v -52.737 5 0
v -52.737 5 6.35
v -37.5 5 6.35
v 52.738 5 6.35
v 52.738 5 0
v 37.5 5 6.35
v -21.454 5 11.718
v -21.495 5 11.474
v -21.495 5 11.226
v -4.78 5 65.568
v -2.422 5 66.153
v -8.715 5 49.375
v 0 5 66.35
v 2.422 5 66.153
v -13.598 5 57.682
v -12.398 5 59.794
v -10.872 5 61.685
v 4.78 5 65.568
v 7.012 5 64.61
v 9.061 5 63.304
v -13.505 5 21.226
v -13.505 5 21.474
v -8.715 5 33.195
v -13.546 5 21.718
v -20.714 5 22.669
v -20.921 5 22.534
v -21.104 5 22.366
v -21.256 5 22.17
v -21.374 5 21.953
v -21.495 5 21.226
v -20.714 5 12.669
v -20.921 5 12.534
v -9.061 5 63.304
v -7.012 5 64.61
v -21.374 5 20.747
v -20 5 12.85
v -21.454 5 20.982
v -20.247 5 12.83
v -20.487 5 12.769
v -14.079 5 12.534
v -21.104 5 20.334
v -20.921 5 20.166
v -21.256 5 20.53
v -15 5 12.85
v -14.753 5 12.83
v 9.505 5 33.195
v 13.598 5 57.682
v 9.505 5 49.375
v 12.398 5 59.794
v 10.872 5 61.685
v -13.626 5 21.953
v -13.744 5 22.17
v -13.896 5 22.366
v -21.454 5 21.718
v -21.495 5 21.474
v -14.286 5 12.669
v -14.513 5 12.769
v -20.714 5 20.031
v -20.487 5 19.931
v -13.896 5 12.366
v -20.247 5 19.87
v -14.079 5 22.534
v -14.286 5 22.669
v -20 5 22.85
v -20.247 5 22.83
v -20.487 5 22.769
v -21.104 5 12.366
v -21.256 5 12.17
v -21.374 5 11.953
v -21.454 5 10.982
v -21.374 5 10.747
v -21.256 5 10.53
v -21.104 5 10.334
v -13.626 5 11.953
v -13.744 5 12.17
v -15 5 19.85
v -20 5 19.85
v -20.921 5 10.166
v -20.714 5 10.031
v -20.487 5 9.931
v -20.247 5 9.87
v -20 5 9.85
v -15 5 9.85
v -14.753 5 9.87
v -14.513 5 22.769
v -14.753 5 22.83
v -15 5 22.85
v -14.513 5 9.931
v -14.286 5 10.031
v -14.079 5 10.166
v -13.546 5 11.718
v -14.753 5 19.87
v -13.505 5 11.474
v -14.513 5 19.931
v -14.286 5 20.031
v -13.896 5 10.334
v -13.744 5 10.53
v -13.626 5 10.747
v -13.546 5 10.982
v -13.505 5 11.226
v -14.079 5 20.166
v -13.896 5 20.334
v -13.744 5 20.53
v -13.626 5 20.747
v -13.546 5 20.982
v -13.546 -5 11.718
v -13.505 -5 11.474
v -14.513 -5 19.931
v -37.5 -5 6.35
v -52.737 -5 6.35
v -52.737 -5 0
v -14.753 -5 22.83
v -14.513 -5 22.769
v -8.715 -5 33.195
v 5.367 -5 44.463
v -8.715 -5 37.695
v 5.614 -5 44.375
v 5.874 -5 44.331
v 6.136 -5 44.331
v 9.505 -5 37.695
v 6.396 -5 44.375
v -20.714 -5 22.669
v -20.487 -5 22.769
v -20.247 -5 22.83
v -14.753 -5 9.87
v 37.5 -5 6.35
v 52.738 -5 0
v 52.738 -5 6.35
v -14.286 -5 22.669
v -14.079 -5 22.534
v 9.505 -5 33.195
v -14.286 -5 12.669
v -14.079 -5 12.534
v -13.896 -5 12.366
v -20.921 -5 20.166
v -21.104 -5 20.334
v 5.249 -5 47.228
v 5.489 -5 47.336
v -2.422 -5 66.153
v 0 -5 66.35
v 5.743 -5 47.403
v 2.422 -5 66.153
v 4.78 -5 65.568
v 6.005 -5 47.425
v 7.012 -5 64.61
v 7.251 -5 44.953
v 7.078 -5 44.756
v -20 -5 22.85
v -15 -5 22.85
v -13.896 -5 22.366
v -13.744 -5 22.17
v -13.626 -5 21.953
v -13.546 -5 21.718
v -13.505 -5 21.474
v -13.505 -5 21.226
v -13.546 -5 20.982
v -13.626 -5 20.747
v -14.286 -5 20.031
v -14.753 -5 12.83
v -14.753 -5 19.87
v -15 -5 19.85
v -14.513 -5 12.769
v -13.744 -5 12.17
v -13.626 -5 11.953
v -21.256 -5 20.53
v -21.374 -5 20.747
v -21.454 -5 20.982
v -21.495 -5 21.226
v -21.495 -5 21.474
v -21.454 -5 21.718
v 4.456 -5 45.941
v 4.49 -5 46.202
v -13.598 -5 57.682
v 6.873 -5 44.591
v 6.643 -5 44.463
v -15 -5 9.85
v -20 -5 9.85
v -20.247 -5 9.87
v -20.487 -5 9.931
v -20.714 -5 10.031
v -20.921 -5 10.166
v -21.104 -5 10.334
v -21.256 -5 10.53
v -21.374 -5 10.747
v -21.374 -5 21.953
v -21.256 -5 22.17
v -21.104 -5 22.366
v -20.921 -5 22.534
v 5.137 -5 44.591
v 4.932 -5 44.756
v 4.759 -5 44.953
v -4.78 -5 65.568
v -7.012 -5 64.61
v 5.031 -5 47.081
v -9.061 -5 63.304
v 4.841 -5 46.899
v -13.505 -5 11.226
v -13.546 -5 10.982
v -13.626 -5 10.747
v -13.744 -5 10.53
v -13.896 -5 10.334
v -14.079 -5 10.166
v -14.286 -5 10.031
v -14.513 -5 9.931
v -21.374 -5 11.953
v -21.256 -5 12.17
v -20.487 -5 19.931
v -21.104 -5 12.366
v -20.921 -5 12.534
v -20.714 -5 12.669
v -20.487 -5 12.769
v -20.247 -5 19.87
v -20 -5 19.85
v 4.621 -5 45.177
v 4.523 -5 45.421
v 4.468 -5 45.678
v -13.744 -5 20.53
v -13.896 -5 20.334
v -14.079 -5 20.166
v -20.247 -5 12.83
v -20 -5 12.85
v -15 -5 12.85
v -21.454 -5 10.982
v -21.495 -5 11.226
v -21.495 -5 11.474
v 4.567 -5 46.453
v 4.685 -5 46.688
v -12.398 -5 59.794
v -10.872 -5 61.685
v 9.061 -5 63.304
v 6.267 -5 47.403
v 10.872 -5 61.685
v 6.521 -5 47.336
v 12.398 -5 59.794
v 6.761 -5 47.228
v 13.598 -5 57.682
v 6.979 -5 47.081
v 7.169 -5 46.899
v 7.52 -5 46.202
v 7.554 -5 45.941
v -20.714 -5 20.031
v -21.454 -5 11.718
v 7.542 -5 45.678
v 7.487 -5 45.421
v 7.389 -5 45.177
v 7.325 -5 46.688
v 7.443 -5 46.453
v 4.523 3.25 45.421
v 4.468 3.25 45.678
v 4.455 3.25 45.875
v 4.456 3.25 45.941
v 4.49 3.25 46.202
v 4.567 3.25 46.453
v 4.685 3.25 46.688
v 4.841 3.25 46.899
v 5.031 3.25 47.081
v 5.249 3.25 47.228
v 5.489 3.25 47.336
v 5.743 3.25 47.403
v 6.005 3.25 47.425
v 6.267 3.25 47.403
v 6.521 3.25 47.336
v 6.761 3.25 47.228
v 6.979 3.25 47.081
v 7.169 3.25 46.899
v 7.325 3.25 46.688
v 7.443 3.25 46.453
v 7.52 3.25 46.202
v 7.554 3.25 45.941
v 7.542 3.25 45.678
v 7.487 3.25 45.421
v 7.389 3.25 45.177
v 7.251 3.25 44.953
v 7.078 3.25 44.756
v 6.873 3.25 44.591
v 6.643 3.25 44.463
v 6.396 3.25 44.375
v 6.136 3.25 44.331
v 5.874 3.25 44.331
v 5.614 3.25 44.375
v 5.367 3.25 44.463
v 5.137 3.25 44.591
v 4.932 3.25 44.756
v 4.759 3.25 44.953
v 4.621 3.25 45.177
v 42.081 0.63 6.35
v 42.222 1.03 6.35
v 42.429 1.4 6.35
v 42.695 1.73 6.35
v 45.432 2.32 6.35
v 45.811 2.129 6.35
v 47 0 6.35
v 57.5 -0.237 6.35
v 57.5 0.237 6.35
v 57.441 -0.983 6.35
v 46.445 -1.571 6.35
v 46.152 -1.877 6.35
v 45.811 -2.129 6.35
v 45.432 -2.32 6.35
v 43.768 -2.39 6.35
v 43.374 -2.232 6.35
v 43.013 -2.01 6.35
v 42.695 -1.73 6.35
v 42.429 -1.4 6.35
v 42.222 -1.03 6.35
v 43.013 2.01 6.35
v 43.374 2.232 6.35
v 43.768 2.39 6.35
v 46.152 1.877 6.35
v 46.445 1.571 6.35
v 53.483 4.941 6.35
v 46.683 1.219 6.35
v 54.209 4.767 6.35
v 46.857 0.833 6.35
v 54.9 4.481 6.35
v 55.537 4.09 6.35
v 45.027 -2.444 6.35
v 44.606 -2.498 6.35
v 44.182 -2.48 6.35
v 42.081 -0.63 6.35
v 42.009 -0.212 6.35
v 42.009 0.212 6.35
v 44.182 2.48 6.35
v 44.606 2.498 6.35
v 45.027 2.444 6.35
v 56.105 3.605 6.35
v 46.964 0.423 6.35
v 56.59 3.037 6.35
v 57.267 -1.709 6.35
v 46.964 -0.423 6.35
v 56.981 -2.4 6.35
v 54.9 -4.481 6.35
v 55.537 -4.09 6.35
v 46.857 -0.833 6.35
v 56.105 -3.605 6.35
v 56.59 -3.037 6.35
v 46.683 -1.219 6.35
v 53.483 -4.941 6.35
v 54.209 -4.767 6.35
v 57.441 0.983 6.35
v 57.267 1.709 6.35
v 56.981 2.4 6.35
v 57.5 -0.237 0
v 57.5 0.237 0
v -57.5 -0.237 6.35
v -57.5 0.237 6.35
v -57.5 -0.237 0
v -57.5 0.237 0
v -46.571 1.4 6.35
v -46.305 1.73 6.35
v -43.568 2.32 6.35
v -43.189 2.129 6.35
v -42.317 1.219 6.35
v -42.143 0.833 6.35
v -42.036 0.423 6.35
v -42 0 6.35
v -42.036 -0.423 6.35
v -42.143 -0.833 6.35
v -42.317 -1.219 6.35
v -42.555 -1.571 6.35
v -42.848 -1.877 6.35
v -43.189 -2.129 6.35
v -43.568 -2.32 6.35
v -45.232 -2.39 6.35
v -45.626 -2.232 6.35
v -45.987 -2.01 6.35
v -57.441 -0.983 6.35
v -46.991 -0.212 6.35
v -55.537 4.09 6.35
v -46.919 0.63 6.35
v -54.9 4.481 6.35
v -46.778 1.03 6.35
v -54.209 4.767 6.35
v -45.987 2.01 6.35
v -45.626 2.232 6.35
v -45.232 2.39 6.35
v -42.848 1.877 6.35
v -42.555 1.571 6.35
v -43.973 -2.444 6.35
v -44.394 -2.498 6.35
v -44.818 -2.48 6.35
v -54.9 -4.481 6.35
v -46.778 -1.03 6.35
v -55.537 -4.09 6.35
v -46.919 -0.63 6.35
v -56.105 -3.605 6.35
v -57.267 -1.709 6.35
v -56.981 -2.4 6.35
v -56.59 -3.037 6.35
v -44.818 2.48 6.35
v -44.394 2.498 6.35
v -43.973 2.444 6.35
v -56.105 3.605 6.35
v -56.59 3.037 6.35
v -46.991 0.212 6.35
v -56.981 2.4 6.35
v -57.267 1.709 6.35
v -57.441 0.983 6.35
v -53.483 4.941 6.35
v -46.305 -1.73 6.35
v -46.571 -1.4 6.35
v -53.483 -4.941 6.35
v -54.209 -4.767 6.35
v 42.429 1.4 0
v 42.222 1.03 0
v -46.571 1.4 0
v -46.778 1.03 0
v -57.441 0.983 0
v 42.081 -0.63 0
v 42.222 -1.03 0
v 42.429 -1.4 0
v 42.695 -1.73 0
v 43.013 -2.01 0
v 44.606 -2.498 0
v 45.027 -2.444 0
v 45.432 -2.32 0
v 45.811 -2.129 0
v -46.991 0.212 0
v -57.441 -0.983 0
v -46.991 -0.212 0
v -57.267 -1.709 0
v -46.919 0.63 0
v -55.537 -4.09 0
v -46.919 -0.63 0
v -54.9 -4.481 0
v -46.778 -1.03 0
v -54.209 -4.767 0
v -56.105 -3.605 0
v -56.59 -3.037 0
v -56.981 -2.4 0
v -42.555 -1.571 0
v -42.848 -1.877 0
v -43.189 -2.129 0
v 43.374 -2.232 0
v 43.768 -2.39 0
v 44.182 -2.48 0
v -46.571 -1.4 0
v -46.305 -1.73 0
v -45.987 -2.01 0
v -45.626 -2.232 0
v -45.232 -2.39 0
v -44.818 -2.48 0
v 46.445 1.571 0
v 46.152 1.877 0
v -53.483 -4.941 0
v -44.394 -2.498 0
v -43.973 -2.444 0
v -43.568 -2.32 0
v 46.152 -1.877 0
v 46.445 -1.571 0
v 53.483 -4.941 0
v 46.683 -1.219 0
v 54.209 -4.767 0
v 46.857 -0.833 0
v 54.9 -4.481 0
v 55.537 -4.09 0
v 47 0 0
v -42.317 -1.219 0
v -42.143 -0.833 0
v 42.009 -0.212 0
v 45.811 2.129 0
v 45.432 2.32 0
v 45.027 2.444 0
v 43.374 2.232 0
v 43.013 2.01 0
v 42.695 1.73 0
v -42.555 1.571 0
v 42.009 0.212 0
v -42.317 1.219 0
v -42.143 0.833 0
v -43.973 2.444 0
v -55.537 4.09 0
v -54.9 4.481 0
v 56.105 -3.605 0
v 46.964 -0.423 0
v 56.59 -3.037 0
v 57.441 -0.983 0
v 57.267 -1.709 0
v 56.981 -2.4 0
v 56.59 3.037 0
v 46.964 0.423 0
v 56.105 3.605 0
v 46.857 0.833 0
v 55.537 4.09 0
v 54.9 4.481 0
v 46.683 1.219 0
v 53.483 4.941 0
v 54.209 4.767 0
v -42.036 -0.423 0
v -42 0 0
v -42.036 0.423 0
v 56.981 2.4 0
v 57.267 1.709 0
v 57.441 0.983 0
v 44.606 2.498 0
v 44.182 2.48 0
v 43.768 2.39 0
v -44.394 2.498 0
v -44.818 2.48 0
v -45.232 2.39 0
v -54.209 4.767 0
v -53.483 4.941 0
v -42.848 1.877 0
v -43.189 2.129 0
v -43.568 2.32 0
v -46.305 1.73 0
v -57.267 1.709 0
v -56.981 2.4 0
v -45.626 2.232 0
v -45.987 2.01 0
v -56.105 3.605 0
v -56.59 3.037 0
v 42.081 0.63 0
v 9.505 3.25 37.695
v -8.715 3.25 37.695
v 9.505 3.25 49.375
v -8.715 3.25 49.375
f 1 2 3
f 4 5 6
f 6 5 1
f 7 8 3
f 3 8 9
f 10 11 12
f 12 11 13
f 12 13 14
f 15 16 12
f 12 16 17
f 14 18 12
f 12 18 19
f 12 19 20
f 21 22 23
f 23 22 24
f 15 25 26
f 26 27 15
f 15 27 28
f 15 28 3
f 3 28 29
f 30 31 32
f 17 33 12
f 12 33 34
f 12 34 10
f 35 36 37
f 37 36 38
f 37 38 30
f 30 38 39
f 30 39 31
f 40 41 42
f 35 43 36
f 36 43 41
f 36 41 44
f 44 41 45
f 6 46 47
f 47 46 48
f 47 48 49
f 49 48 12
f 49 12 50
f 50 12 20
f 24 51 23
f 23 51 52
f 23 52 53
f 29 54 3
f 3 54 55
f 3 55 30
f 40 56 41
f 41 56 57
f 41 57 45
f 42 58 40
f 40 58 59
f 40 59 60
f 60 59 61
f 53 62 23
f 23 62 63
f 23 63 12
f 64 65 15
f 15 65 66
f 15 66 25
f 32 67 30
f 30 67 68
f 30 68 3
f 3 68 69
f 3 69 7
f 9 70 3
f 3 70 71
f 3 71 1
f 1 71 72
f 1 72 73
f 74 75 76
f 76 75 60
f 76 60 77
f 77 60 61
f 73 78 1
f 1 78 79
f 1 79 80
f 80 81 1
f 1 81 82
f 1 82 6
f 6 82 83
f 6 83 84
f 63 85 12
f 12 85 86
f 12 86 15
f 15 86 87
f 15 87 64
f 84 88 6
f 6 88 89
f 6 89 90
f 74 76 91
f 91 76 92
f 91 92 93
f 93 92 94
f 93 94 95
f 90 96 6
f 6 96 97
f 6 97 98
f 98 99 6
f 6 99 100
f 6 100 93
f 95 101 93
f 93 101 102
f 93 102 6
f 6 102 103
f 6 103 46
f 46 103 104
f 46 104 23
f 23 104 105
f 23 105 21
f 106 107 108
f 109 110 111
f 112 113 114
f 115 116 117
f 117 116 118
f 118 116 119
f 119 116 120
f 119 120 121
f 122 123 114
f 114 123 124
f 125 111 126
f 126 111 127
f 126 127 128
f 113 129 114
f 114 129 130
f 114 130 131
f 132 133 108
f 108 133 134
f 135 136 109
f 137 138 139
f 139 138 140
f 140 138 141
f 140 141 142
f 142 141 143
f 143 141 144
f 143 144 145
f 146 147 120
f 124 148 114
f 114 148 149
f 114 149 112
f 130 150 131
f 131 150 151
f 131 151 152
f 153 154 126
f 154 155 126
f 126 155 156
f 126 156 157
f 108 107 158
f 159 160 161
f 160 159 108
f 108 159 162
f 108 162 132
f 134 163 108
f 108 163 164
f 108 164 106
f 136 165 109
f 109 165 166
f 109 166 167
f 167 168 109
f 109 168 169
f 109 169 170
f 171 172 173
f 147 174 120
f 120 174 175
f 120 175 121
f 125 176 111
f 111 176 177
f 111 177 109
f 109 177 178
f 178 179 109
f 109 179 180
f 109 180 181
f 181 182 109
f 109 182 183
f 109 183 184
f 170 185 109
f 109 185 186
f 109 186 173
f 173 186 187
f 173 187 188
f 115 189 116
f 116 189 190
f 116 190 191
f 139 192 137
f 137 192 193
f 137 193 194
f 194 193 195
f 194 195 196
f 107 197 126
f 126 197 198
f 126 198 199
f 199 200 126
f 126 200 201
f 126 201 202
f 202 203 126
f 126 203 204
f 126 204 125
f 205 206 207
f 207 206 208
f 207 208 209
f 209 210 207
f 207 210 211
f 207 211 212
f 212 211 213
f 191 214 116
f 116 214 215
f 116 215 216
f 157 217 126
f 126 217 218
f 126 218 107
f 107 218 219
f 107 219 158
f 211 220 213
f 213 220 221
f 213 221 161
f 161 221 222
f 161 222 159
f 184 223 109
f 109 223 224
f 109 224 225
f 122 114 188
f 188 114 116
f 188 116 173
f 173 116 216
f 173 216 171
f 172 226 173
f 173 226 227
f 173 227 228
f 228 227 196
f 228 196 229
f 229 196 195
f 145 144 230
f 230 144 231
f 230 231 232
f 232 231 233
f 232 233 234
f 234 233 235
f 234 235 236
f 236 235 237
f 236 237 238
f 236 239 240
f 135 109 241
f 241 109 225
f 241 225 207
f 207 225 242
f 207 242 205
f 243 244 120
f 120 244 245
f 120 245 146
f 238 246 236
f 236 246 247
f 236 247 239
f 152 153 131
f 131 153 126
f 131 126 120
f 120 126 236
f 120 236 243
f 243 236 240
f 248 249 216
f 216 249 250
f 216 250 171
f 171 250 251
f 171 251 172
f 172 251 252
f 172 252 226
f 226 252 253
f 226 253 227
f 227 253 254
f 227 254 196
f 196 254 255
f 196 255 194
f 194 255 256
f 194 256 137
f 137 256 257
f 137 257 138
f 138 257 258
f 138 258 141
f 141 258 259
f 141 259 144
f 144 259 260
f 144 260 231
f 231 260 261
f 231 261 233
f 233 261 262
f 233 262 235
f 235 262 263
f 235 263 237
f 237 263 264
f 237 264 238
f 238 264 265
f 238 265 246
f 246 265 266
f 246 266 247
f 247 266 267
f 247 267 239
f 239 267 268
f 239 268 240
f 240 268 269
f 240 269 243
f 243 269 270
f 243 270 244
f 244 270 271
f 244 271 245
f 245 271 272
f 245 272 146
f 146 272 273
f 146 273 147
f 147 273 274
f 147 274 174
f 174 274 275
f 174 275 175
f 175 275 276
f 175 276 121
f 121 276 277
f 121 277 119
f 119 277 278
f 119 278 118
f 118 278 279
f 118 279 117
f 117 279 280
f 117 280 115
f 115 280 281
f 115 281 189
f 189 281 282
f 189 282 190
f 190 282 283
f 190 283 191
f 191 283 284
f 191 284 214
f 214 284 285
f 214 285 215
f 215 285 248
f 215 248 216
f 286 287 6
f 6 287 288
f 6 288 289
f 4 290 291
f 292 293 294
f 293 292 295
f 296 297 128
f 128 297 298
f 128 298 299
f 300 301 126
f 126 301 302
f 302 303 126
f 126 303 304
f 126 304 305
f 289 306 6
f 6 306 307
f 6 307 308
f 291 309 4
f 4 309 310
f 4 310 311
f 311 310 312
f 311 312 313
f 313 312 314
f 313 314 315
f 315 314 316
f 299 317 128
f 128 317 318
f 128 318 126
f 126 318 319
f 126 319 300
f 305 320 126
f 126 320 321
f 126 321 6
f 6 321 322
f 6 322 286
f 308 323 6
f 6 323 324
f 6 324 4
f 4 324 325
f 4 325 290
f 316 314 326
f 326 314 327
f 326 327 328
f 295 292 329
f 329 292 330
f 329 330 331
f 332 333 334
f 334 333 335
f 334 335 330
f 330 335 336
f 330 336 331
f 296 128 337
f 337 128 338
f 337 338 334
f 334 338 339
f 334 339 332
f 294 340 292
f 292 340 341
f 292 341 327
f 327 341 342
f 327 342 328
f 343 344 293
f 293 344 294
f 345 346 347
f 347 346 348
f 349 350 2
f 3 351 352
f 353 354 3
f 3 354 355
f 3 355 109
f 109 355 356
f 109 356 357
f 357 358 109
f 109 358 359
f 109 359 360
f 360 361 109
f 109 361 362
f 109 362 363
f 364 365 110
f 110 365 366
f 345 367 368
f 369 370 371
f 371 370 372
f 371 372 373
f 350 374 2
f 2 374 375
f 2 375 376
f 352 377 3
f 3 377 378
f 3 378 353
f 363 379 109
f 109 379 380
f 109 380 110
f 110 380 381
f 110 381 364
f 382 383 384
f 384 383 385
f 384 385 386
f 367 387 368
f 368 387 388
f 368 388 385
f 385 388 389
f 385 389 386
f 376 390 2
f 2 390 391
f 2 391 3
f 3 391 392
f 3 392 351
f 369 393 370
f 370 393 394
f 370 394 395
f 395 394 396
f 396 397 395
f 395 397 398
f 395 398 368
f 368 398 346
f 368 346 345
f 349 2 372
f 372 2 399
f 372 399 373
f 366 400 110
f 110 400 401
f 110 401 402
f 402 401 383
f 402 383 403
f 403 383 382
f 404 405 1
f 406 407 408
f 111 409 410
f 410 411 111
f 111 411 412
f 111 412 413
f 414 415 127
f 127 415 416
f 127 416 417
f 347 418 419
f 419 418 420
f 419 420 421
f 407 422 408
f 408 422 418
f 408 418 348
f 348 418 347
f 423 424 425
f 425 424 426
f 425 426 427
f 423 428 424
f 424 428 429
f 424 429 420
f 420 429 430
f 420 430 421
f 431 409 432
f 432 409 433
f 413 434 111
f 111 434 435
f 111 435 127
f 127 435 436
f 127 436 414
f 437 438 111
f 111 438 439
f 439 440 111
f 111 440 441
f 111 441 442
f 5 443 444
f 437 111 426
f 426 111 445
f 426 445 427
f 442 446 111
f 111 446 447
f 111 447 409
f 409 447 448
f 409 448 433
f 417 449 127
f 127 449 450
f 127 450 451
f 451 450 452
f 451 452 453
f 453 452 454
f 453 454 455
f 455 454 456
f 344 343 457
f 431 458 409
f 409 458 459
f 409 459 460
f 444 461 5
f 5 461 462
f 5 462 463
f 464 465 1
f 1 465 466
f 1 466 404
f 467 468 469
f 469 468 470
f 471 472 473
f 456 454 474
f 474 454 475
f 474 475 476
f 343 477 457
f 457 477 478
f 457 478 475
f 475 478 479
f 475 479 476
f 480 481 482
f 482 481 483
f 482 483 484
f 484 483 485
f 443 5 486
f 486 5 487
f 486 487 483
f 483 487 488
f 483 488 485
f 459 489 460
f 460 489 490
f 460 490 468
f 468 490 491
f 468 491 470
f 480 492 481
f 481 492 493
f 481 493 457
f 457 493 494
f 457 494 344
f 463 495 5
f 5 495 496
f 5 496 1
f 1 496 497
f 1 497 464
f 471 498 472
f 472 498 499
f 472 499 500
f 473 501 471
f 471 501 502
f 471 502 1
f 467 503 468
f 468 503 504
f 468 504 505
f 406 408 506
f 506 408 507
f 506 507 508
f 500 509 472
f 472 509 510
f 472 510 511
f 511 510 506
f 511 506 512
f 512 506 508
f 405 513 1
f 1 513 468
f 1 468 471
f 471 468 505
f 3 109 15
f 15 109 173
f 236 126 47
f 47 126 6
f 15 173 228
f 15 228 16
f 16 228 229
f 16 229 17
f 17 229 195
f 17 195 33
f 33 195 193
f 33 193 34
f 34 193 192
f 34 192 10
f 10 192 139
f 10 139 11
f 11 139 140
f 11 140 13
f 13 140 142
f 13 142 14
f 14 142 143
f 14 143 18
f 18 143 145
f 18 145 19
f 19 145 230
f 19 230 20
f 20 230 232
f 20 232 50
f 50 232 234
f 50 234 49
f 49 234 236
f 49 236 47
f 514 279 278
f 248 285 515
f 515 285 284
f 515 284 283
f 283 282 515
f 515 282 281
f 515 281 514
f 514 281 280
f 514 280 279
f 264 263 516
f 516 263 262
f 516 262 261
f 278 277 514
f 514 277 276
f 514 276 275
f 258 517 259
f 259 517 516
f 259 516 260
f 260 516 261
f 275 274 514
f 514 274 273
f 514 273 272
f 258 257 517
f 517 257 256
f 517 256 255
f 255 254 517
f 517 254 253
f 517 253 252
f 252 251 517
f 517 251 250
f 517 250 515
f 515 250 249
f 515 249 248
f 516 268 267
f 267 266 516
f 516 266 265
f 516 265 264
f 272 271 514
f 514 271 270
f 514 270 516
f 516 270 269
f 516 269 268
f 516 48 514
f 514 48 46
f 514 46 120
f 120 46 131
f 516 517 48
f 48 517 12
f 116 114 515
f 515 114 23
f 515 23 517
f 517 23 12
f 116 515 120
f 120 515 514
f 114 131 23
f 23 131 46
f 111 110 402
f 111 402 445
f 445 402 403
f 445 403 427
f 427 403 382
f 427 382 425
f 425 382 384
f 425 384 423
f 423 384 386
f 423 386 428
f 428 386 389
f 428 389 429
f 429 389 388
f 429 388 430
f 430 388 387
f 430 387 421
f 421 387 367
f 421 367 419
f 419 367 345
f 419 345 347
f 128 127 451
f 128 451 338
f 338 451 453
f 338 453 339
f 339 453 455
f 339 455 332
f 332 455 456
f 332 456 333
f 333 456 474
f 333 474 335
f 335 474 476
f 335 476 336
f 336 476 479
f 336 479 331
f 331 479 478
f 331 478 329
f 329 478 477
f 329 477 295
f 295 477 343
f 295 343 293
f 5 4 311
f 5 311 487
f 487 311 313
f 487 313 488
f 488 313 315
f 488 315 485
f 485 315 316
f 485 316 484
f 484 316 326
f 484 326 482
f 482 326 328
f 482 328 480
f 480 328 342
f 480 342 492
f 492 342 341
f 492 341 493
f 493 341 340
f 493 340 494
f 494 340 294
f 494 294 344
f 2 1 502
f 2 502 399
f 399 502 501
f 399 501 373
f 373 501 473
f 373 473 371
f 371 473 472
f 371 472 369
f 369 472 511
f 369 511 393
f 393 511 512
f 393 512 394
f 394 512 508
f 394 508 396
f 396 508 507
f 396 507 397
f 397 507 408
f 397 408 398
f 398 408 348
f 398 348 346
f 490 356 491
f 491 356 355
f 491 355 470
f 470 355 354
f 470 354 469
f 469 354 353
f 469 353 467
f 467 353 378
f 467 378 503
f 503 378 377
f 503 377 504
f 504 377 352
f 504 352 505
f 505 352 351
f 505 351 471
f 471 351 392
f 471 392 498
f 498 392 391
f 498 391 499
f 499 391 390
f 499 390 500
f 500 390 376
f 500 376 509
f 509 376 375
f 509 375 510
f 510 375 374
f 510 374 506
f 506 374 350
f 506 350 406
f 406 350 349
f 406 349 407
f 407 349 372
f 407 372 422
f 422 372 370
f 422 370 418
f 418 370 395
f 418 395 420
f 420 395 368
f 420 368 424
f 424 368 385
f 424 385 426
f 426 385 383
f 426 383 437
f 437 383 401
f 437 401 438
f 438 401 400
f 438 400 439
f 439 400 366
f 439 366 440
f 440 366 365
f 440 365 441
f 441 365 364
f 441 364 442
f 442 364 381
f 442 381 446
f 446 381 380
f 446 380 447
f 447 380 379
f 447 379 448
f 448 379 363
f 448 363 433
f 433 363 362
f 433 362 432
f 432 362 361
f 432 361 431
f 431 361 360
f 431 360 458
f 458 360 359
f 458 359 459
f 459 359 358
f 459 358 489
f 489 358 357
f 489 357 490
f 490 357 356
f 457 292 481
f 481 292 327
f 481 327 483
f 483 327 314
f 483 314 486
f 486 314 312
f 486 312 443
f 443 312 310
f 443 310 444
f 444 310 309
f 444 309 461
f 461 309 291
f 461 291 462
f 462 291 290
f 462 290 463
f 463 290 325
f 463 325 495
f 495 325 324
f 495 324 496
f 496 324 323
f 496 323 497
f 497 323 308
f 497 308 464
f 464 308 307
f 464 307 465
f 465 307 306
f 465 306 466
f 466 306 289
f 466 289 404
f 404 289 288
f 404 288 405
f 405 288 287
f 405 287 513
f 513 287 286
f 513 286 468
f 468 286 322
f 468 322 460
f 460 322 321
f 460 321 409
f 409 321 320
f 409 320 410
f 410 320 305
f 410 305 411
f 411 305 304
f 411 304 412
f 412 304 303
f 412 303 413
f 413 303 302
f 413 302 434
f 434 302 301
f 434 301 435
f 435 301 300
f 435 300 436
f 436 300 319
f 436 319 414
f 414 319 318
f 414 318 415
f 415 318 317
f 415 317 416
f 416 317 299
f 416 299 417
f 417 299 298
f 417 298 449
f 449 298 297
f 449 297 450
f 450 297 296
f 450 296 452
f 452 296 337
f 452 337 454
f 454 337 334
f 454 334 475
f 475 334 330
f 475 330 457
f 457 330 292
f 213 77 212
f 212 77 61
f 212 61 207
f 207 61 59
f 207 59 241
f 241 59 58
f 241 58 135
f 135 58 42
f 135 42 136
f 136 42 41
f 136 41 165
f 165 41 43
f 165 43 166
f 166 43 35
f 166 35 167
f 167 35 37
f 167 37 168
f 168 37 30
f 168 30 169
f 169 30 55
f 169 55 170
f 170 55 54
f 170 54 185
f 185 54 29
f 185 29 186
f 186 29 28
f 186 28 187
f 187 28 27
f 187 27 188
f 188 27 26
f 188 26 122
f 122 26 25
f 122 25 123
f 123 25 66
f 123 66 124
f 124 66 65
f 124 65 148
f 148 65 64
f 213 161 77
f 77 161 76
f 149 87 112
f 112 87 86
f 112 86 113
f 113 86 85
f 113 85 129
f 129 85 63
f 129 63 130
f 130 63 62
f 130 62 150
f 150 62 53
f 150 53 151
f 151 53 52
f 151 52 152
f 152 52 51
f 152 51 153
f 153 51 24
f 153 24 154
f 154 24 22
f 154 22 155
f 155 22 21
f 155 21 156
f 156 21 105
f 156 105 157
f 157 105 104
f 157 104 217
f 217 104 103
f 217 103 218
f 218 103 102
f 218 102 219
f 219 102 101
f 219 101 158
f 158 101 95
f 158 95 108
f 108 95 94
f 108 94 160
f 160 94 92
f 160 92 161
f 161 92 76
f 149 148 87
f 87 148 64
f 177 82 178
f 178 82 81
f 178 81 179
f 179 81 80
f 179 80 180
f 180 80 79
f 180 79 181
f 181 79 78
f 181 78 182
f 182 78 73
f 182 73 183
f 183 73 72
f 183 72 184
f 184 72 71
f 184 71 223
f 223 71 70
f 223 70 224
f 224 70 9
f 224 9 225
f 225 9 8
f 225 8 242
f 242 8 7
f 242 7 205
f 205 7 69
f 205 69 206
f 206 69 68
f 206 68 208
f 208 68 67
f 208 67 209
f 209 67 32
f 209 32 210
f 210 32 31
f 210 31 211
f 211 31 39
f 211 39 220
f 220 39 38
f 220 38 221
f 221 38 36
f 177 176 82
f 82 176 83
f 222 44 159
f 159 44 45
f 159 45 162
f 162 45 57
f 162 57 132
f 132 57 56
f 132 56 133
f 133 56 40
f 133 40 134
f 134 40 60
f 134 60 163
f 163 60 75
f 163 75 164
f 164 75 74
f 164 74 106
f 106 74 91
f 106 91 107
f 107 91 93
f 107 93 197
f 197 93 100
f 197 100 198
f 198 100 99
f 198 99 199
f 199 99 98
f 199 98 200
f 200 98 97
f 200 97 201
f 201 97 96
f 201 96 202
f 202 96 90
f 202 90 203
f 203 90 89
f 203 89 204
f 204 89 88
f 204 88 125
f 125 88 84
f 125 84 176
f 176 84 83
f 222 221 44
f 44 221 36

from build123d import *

# Parameters (mm, degrees)
SKETCH1_W              = 115.000000124
SKETCH1_H              = 10
BOSS_EXTRUDE1_DEPTH    = 6.35
BOSS_EXTRUDE3_DEPTH    = 10
M2_5_CLEARANCE_HOLE1_D = 3.1
SKETCH8_W              = 18.22
SKETCH8_H              = 11.68
CUT_EXTRUDE3_DEPTH     = 1.75
SKETCH8_9_W            = 18.22
SKETCH8_9_H            = 4.5
CUT_EXTRUDE4_DEPTH     = 89.366127601
FILLET2_R              = 4.7625
F_5_0MM_DOWEL_HOLE1_D  = 5
CUT_EXTRUDE5_DEPTH     = 89.366127601


with BuildPart() as part:
    # Sketch1 → Boss-Extrude1 (new body)
    with BuildSketch(Plane.XY):
        Rectangle(SKETCH1_W, SKETCH1_H)
    extrude(amount=BOSS_EXTRUDE1_DEPTH)

    # Sketch2 → Boss-Extrude3 (add)
    with BuildSketch(Plane.XZ.offset(5)):
        with BuildLine():
            Line((-37.500000062, 6.35), (37.500000062, 6.35))
            Line((37.500000062, 6.35), (13.598116374, 57.681763663))
            ThreePointArc((13.598116374, 57.681763663), (0, 66.35), (-13.598116374, 57.681763663))
            Line((-13.598116374, 57.681763663), (-37.500000062, 6.35))
        make_face()
    extrude(amount=-BOSS_EXTRUDE3_DEPTH)

    # M2.5 Clearance Hole1 (through all)
    with Locations(Plane(origin=(0, 5, 0), x_dir=(1, 0, 0), z_dir=(0, 1, 0))):
        with Locations((6.005, -45.875)):
            Hole(M2_5_CLEARANCE_HOLE1_D / 2)

    # Sketch8 → Cut-Extrude3 (cut)
    with BuildSketch(Plane(origin=(0, 5, 0), x_dir=(-1, 0, 0), z_dir=(0, 1, 0))):
        with Locations((-0.395, 43.535)):
            Rectangle(SKETCH8_W, SKETCH8_H)
    extrude(amount=-CUT_EXTRUDE3_DEPTH, mode=Mode.SUBTRACT)

    # Sketch8<9> → Cut-Extrude4 (cut, through all)
    with BuildSketch(Plane(origin=(0, 5, 0), x_dir=(-1, 0, 0), z_dir=(0, 1, 0))):
        with Locations((-0.395, 35.445)):
            Rectangle(SKETCH8_9_W, SKETCH8_9_H)
    extrude(amount=-CUT_EXTRUDE4_DEPTH, mode=Mode.SUBTRACT)

    # Fillet2
    fillet2_edges = [part.edges().sort_by_distance(p)[0] for p in [
        (-57.500000062, -5, 3.175),
        (-57.500000062, 5, 3.175),
        (57.500000062, 5, 3.175),
        (57.500000062, -5, 3.175),
    ]]
    fillet(fillet2_edges, radius=FILLET2_R)

    # Ø5.0mm Dowel Hole1 (through all)
    with Locations(Plane.XY.offset(6.35)):
        with Locations((44.5, 0), (-44.5, 0)):
            Hole(F_5_0MM_DOWEL_HOLE1_D / 2)

    # Sketch11 → Cut-Extrude5 (cut, through all)
    with BuildSketch(Plane(origin=(0, 5, 0), x_dir=(1, 0, 0), z_dir=(0, 1, 0))):
        with BuildLine():
            Line((-20.000000062, -9.85), (-15.000000062, -9.85))
            ThreePointArc((-15.000000062, -9.85), (-13.500000062, -11.35), (-15.000000062, -12.85))
            Line((-15.000000062, -12.85), (-20.000000062, -12.85))
            ThreePointArc((-20.000000062, -12.85), (-21.500000062, -11.35), (-20.000000062, -9.85))
        make_face()
        with BuildLine():
            Line((-20.000000062, -19.85), (-15.000000062, -19.85))
            ThreePointArc((-15.000000062, -19.85), (-13.500000062, -21.35), (-15.000000062, -22.85))
            Line((-15.000000062, -22.85), (-20.000000062, -22.85))
            ThreePointArc((-20.000000062, -22.85), (-21.500000062, -21.35), (-20.000000062, -19.85))
        make_face()
    extrude(amount=-CUT_EXTRUDE5_DEPTH, mode=Mode.SUBTRACT)


solid = part.part
